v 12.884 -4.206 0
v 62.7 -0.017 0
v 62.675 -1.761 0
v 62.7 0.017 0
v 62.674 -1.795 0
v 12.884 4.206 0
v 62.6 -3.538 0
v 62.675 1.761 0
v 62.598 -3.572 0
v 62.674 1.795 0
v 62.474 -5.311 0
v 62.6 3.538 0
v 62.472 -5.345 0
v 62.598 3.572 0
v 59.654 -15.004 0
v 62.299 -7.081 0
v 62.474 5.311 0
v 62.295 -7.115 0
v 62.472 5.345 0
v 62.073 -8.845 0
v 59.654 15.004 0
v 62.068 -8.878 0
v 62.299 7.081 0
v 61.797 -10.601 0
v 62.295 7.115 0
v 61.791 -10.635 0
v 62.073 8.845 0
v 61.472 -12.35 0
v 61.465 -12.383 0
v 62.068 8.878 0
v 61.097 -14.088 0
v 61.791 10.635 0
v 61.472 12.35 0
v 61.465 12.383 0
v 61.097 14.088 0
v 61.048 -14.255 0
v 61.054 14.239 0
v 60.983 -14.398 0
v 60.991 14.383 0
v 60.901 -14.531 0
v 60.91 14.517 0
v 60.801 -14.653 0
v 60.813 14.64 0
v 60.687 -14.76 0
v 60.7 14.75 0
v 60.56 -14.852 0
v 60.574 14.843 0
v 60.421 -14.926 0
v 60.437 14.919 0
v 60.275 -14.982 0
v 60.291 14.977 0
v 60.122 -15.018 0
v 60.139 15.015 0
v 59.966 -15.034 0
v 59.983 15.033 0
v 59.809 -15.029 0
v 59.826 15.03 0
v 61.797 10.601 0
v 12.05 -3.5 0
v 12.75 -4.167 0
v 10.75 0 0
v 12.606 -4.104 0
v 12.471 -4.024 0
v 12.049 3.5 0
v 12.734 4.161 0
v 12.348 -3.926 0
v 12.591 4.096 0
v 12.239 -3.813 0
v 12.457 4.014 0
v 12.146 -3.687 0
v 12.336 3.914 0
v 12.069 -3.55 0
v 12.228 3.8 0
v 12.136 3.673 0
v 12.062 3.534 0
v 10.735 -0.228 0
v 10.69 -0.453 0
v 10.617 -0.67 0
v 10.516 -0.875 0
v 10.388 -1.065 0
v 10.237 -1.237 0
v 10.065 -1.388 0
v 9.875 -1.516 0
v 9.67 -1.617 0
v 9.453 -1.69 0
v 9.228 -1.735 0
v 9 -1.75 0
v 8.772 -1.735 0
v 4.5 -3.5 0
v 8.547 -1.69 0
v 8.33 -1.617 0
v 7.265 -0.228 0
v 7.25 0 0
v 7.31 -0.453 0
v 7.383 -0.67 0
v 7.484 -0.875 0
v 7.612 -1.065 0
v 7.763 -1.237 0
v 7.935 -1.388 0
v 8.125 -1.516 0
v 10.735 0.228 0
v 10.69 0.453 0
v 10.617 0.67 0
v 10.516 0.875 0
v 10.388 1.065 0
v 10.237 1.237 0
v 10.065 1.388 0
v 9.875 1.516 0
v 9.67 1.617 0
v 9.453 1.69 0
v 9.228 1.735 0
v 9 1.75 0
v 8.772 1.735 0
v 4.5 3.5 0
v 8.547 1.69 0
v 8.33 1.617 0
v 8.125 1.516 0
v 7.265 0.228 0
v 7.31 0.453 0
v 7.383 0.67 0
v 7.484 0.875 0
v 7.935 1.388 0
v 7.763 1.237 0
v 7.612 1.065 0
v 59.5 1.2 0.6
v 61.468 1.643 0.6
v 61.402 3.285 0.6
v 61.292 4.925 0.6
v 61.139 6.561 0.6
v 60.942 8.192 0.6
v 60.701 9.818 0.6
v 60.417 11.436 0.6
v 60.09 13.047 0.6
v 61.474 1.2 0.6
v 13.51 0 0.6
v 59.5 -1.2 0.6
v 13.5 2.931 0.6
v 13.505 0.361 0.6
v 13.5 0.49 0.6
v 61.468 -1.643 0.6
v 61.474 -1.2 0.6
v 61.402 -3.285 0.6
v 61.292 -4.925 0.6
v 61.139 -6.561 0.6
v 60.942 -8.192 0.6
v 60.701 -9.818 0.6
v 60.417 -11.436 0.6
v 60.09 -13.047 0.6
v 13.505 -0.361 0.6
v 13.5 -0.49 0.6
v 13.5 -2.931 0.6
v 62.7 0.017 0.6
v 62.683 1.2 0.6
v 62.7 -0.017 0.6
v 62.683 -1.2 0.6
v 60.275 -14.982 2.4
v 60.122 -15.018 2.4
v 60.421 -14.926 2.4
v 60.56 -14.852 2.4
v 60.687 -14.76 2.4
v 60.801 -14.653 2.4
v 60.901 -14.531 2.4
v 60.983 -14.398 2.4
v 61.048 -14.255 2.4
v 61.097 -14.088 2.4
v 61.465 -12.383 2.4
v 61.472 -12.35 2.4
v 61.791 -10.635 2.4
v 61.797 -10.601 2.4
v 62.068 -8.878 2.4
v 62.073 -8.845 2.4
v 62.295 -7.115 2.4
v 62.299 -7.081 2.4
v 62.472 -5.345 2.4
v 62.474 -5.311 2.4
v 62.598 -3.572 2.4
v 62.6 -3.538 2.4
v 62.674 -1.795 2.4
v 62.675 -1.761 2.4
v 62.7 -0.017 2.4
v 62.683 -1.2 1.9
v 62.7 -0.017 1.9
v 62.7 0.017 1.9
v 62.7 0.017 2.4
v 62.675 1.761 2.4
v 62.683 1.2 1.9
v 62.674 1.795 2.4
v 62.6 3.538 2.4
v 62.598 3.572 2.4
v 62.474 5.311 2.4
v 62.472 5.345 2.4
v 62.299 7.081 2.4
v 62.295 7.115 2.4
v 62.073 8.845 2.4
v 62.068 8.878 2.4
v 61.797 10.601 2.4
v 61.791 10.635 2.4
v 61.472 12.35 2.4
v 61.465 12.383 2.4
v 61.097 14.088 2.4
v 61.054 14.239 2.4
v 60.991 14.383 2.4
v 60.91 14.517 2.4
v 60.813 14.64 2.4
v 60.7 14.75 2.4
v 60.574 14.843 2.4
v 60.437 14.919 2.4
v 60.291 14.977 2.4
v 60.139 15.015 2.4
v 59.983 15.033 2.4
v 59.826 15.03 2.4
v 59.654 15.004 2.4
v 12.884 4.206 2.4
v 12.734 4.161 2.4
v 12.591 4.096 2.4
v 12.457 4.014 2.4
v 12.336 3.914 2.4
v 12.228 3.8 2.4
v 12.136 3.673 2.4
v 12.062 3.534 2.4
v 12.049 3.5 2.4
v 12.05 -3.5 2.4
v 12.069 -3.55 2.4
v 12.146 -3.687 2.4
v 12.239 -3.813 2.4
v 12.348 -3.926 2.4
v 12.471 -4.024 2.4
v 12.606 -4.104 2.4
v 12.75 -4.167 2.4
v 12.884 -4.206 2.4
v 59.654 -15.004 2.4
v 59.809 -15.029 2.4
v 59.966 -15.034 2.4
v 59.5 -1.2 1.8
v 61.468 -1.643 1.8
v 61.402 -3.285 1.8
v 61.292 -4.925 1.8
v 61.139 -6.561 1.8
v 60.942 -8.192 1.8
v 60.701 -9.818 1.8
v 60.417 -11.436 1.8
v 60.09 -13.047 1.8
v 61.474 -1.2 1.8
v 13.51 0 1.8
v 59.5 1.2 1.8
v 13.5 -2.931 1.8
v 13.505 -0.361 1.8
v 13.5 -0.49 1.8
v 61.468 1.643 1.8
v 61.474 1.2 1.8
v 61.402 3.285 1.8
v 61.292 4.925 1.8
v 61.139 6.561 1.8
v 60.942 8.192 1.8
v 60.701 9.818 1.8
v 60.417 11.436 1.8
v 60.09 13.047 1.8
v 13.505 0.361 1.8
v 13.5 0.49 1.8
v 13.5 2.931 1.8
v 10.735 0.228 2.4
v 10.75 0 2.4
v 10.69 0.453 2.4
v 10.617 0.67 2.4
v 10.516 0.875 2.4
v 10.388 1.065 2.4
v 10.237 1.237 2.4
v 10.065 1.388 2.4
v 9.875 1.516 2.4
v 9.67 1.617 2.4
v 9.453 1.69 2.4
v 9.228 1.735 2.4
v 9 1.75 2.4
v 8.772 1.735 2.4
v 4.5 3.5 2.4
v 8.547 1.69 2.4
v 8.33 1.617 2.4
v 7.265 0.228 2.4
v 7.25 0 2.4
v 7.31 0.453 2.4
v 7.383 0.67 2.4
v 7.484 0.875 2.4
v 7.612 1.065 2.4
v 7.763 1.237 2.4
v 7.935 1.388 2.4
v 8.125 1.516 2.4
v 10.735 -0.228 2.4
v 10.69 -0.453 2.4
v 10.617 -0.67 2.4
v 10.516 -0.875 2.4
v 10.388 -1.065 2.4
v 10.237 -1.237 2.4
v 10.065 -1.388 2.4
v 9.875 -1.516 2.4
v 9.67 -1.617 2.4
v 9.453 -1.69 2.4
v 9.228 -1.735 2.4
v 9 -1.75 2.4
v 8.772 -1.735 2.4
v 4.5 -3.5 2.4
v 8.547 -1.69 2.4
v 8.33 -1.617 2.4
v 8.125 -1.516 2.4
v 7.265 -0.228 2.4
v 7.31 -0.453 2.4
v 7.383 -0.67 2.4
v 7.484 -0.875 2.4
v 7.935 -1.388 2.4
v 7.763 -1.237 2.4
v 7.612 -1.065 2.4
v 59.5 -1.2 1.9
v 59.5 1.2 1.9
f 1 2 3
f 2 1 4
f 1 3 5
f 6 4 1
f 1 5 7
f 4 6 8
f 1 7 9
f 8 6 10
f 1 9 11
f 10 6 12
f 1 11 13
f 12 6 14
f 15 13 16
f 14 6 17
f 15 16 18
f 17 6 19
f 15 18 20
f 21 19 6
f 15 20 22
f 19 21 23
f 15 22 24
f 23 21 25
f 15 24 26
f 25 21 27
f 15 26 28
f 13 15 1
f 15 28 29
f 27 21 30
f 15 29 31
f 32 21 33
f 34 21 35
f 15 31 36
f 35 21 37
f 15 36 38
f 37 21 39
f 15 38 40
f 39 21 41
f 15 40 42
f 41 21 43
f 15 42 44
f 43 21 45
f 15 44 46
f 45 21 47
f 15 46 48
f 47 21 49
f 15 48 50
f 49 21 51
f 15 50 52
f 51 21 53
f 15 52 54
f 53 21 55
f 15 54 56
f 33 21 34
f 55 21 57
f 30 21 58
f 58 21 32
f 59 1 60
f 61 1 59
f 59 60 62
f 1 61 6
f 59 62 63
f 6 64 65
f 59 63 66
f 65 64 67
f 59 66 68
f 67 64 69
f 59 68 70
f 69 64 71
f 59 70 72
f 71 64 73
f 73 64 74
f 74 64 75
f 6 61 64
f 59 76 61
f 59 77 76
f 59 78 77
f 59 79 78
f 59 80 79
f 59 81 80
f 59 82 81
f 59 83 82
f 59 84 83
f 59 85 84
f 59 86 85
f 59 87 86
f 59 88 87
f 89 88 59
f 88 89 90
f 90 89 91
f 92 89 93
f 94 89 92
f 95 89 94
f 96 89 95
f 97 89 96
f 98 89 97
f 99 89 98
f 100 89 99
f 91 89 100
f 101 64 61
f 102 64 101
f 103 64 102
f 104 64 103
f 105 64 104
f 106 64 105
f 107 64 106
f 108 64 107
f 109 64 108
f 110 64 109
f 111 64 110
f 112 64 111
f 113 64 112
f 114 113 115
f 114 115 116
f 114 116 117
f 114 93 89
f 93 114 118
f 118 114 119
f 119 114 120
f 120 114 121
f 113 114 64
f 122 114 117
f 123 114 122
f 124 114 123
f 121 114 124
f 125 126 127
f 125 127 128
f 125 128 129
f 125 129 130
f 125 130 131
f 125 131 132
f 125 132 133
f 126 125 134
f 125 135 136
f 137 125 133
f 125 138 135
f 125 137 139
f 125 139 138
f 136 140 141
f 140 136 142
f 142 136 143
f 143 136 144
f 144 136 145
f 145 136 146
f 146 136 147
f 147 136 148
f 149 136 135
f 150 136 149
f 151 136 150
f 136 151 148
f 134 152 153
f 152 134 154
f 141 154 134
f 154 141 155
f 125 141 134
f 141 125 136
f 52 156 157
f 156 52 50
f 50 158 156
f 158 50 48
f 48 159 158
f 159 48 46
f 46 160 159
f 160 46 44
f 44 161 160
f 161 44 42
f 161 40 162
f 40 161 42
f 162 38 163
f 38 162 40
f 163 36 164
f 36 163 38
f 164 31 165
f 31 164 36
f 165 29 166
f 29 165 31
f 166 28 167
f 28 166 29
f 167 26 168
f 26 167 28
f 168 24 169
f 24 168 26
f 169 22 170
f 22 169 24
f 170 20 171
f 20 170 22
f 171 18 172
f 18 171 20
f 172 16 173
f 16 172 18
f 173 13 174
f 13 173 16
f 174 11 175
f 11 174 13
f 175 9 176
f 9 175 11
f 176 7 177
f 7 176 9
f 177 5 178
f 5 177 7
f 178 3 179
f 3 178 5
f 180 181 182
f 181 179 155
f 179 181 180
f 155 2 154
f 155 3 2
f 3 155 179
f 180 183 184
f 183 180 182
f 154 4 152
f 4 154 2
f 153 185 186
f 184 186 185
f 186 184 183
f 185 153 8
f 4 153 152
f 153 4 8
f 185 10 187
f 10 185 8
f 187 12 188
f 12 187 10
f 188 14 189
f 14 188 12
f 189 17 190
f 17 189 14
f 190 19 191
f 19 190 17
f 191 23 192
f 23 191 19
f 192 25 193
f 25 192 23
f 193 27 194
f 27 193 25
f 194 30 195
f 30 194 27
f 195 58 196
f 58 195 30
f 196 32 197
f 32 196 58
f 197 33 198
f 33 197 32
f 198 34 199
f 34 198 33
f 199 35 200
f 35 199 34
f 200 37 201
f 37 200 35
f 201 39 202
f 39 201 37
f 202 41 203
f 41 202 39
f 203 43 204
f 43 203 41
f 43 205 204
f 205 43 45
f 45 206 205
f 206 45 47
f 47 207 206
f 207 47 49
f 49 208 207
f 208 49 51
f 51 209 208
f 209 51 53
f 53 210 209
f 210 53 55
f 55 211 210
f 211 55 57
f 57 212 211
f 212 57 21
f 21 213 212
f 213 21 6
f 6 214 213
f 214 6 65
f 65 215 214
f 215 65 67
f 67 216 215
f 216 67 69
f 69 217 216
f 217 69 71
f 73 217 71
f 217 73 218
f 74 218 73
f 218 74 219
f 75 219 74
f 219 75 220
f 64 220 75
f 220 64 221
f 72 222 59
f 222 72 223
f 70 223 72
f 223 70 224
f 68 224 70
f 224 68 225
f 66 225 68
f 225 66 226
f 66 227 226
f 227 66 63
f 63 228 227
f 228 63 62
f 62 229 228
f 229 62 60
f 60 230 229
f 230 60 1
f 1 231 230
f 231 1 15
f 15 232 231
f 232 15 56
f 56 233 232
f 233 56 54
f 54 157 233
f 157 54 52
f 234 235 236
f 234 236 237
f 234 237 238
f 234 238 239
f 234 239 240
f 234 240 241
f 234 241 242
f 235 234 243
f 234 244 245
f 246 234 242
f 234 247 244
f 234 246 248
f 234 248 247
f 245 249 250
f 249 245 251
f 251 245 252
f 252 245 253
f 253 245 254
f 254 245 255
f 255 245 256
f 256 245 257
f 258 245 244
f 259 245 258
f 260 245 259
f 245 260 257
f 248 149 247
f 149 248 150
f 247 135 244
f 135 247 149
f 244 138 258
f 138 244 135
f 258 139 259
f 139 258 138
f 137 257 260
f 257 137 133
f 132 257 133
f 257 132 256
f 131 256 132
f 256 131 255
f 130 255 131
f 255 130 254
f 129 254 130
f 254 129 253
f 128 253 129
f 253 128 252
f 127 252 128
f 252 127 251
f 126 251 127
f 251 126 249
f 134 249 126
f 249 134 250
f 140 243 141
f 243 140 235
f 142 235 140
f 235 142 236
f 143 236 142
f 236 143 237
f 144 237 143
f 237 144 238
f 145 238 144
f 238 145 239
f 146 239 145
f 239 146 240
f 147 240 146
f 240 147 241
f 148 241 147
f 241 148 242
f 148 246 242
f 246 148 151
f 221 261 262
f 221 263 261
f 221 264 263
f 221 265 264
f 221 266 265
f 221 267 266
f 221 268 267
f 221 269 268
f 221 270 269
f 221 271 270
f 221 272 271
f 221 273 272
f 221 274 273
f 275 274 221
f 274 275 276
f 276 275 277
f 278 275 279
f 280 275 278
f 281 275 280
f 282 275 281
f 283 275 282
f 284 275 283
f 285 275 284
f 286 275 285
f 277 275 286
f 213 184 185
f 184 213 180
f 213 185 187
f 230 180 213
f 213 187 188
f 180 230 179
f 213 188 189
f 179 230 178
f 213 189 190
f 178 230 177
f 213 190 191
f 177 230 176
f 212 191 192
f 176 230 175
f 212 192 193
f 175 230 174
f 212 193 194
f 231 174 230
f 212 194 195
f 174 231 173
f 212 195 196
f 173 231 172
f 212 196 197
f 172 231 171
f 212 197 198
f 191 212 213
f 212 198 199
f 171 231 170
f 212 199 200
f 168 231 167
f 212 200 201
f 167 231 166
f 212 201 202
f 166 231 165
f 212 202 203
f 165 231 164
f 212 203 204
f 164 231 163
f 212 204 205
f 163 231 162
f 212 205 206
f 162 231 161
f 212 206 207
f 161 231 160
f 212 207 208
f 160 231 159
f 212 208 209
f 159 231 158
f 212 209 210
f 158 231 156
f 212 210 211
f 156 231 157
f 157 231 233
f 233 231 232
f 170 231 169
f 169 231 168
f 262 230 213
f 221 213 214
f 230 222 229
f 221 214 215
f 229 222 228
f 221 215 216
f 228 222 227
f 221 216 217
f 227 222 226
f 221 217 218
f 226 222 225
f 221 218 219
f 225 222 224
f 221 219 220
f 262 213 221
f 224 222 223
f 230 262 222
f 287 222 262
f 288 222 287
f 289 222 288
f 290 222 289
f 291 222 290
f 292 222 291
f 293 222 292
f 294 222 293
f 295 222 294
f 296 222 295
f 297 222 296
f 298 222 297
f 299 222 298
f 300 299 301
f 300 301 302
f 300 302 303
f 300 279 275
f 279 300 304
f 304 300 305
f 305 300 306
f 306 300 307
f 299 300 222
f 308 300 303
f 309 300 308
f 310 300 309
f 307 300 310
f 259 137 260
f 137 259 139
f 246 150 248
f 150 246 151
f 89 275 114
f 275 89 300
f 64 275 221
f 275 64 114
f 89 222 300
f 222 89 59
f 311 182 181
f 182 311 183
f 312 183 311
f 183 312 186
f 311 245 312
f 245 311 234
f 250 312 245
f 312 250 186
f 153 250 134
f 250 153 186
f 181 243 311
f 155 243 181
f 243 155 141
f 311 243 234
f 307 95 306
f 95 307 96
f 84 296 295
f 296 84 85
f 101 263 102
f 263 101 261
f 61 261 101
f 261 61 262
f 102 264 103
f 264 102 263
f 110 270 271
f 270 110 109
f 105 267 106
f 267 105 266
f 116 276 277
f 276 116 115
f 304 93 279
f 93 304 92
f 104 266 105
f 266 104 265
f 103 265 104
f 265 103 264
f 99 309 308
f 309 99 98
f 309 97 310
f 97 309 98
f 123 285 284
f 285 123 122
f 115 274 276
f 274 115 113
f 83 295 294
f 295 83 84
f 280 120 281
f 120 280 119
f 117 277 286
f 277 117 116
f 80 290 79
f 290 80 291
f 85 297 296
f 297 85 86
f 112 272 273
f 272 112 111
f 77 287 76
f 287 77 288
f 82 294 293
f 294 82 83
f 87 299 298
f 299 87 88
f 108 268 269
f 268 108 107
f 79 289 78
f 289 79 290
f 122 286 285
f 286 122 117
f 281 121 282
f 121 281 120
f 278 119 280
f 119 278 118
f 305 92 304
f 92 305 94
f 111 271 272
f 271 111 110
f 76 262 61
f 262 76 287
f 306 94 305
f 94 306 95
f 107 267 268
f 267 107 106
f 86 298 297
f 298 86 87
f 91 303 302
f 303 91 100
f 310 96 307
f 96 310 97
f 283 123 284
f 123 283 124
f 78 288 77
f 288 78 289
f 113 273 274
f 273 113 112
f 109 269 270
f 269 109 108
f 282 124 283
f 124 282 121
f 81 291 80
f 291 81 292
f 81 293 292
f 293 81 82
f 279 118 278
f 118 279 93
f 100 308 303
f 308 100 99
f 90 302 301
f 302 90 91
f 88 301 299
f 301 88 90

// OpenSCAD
// file: parameters.scad
// =============================================================================
// Gen-AZ Dual-rotor copper-centroid femto AFPM - WOUND-AWARE (HARD GATE)
// PRIMARY challenger vs Gen-AW. Magnets @ R=37.5 + 220 t + former_web 1.20 -> m2m 4.66.
// =============================================================================

// --- Wire / wind budget (26 AWG, ~1 lb spool ~ 390 m bare-equiv) --------------
wire_awg            = 26;
wire_od             = 0.45;     // insulated OD mm
turns               = 220;      // +5 vs Gen-AW 215
fill                = 0.70;
layers_per_face     = 2;        // axial layers proud of EACH flange
wind_build_axial    = layers_per_face * wire_od * fill;   // 0.63 mm
wind_build_radial   = 3 * wire_od * fill;                 // 0.945 mm

// --- Pancake former (bare STL) -----------------------------------------------
coil_id_r           = 13.5;     // copper-centroid window centered ~R=37.5
coil_od_r           = 61.5;
span_deg            = 26.0;     // 12 stations x 30 deg pitch
former_web          = 1.20;     // print floor for LB walls
flange_t            = 0.60;
wall                = 1.2;
slot_w              = 2.4;
mount_hole          = 3.5;
tab_len             = 7.0;

former_bare_h       = former_web + 2 * flange_t;            // 2.40 mm
coil_envelope_h     = former_bare_h + 2 * wind_build_axial; // 3.66 mm

// --- Running clearance (magnet face -> WOUND face) EACH side ------------------
run_clear           = 0.50;     // PASS floor >= 0.5
gap_spacer_h        = run_clear + wind_build_axial;         // 1.13 mm
m2m                 = coil_envelope_h + 2 * run_clear;      // 4.66 mm (holds vs Gen-AW)

// --- Mid stator (12 pancakes 3ph; winds proud both faces) ---------------------
coil_stations       = 12;
bay_r_in            = coil_id_r - 2.0 - wind_build_radial;
bay_r_out           = coil_od_r + 2.0 + wind_build_radial;
bay_span            = span_deg + 4.0;
bay_offset          = 2.0;
stator_thick        = former_bare_h;                        // winds proud +/-Z
stator_od           = 160.0;
shaft_clear_stator  = 33.5;     // nudged inward vs AW 34.0
coil_mount_r        = 24.5;     // nudged inward vs AW 25.0

// --- Rotors (x2) - 8xO20 @ R=37.5 (copper centroid) + 24xO5 Halbach ----------
large_pocket_d      = 20.3;
small_pocket_d      = 5.3;
pocket_h            = 5.2;
large_n             = 8;
R_large             = 37.5;     // covers ~27.5-47.5 over copper centroid ~37.5
R_small_inner       = 22.5;
R_small_mid         = 37.5;
R_small_outer       = 54.5;
carrier_od          = 156.0;
carrier_thick       = 7.5;
hub_h               = 10.0;
hub_od              = 30.0;
rotor_b_offset_deg  = 22.5;

// --- Modular MAX interface (Gen-E family) ------------------------------------
shaft_bore          = 8.35;
bearing_d           = 21.85;
bearing_h           = 7.2;
m3_clear            = 3.5;
bolt_r_inner        = 36.0;
bolt_n_inner        = 6;
flange_bolt_r       = 72.0;
flange_bolt_n       = 6;
brace_r             = 68.0;
brace_d             = 4.3;
brace_n             = 4;

spacer_pad_od       = 14.0;
spacer_pad_id       = m3_clear;
endbell_od          = 160.0;
endbell_thick       = 8.0;
endbell_shaft_clear = 10.0;

$fn = 64;
// main file
// Gen-AW pancake former — wind BEFORE assembly
include <parameters.scad>;
$fn = 48;

module sector_2d(r_in, r_out, ang) {
    polygon([
        for (a = [-ang/2 : ang/16 : ang/2]) [r_in*cos(a), r_in*sin(a)],
        for (a = [ang/2 : -ang/16 : -ang/2]) [r_out*cos(a), r_out*sin(a)]
    ]);
}
module flange() {
    linear_extrude(flange_t) offset(r=wall) sector_2d(coil_id_r, coil_od_r, span_deg);
}
difference() {
    union() {
        flange();
        translate([0, 0, flange_t])
            linear_extrude(former_web)
                difference() {
                    offset(r=wall) sector_2d(coil_id_r, coil_od_r, span_deg);
                    sector_2d(coil_id_r + 0.01, coil_od_r - 0.01, span_deg - 1.5);
                }
        translate([0, 0, flange_t + former_web]) flange();
        translate([coil_id_r - tab_len - 2, -3.5, 0])
            cube([tab_len + 2, 7, former_bare_h]);
    }
    translate([coil_od_r - 2, -slot_w/2, flange_t])
        cube([wall + 4, slot_w, former_web + 0.1]);
    translate([coil_id_r - tab_len/2 - 1, 0, -0.1])
        cylinder(d=mount_hole, h=former_bare_h + 1);
}
